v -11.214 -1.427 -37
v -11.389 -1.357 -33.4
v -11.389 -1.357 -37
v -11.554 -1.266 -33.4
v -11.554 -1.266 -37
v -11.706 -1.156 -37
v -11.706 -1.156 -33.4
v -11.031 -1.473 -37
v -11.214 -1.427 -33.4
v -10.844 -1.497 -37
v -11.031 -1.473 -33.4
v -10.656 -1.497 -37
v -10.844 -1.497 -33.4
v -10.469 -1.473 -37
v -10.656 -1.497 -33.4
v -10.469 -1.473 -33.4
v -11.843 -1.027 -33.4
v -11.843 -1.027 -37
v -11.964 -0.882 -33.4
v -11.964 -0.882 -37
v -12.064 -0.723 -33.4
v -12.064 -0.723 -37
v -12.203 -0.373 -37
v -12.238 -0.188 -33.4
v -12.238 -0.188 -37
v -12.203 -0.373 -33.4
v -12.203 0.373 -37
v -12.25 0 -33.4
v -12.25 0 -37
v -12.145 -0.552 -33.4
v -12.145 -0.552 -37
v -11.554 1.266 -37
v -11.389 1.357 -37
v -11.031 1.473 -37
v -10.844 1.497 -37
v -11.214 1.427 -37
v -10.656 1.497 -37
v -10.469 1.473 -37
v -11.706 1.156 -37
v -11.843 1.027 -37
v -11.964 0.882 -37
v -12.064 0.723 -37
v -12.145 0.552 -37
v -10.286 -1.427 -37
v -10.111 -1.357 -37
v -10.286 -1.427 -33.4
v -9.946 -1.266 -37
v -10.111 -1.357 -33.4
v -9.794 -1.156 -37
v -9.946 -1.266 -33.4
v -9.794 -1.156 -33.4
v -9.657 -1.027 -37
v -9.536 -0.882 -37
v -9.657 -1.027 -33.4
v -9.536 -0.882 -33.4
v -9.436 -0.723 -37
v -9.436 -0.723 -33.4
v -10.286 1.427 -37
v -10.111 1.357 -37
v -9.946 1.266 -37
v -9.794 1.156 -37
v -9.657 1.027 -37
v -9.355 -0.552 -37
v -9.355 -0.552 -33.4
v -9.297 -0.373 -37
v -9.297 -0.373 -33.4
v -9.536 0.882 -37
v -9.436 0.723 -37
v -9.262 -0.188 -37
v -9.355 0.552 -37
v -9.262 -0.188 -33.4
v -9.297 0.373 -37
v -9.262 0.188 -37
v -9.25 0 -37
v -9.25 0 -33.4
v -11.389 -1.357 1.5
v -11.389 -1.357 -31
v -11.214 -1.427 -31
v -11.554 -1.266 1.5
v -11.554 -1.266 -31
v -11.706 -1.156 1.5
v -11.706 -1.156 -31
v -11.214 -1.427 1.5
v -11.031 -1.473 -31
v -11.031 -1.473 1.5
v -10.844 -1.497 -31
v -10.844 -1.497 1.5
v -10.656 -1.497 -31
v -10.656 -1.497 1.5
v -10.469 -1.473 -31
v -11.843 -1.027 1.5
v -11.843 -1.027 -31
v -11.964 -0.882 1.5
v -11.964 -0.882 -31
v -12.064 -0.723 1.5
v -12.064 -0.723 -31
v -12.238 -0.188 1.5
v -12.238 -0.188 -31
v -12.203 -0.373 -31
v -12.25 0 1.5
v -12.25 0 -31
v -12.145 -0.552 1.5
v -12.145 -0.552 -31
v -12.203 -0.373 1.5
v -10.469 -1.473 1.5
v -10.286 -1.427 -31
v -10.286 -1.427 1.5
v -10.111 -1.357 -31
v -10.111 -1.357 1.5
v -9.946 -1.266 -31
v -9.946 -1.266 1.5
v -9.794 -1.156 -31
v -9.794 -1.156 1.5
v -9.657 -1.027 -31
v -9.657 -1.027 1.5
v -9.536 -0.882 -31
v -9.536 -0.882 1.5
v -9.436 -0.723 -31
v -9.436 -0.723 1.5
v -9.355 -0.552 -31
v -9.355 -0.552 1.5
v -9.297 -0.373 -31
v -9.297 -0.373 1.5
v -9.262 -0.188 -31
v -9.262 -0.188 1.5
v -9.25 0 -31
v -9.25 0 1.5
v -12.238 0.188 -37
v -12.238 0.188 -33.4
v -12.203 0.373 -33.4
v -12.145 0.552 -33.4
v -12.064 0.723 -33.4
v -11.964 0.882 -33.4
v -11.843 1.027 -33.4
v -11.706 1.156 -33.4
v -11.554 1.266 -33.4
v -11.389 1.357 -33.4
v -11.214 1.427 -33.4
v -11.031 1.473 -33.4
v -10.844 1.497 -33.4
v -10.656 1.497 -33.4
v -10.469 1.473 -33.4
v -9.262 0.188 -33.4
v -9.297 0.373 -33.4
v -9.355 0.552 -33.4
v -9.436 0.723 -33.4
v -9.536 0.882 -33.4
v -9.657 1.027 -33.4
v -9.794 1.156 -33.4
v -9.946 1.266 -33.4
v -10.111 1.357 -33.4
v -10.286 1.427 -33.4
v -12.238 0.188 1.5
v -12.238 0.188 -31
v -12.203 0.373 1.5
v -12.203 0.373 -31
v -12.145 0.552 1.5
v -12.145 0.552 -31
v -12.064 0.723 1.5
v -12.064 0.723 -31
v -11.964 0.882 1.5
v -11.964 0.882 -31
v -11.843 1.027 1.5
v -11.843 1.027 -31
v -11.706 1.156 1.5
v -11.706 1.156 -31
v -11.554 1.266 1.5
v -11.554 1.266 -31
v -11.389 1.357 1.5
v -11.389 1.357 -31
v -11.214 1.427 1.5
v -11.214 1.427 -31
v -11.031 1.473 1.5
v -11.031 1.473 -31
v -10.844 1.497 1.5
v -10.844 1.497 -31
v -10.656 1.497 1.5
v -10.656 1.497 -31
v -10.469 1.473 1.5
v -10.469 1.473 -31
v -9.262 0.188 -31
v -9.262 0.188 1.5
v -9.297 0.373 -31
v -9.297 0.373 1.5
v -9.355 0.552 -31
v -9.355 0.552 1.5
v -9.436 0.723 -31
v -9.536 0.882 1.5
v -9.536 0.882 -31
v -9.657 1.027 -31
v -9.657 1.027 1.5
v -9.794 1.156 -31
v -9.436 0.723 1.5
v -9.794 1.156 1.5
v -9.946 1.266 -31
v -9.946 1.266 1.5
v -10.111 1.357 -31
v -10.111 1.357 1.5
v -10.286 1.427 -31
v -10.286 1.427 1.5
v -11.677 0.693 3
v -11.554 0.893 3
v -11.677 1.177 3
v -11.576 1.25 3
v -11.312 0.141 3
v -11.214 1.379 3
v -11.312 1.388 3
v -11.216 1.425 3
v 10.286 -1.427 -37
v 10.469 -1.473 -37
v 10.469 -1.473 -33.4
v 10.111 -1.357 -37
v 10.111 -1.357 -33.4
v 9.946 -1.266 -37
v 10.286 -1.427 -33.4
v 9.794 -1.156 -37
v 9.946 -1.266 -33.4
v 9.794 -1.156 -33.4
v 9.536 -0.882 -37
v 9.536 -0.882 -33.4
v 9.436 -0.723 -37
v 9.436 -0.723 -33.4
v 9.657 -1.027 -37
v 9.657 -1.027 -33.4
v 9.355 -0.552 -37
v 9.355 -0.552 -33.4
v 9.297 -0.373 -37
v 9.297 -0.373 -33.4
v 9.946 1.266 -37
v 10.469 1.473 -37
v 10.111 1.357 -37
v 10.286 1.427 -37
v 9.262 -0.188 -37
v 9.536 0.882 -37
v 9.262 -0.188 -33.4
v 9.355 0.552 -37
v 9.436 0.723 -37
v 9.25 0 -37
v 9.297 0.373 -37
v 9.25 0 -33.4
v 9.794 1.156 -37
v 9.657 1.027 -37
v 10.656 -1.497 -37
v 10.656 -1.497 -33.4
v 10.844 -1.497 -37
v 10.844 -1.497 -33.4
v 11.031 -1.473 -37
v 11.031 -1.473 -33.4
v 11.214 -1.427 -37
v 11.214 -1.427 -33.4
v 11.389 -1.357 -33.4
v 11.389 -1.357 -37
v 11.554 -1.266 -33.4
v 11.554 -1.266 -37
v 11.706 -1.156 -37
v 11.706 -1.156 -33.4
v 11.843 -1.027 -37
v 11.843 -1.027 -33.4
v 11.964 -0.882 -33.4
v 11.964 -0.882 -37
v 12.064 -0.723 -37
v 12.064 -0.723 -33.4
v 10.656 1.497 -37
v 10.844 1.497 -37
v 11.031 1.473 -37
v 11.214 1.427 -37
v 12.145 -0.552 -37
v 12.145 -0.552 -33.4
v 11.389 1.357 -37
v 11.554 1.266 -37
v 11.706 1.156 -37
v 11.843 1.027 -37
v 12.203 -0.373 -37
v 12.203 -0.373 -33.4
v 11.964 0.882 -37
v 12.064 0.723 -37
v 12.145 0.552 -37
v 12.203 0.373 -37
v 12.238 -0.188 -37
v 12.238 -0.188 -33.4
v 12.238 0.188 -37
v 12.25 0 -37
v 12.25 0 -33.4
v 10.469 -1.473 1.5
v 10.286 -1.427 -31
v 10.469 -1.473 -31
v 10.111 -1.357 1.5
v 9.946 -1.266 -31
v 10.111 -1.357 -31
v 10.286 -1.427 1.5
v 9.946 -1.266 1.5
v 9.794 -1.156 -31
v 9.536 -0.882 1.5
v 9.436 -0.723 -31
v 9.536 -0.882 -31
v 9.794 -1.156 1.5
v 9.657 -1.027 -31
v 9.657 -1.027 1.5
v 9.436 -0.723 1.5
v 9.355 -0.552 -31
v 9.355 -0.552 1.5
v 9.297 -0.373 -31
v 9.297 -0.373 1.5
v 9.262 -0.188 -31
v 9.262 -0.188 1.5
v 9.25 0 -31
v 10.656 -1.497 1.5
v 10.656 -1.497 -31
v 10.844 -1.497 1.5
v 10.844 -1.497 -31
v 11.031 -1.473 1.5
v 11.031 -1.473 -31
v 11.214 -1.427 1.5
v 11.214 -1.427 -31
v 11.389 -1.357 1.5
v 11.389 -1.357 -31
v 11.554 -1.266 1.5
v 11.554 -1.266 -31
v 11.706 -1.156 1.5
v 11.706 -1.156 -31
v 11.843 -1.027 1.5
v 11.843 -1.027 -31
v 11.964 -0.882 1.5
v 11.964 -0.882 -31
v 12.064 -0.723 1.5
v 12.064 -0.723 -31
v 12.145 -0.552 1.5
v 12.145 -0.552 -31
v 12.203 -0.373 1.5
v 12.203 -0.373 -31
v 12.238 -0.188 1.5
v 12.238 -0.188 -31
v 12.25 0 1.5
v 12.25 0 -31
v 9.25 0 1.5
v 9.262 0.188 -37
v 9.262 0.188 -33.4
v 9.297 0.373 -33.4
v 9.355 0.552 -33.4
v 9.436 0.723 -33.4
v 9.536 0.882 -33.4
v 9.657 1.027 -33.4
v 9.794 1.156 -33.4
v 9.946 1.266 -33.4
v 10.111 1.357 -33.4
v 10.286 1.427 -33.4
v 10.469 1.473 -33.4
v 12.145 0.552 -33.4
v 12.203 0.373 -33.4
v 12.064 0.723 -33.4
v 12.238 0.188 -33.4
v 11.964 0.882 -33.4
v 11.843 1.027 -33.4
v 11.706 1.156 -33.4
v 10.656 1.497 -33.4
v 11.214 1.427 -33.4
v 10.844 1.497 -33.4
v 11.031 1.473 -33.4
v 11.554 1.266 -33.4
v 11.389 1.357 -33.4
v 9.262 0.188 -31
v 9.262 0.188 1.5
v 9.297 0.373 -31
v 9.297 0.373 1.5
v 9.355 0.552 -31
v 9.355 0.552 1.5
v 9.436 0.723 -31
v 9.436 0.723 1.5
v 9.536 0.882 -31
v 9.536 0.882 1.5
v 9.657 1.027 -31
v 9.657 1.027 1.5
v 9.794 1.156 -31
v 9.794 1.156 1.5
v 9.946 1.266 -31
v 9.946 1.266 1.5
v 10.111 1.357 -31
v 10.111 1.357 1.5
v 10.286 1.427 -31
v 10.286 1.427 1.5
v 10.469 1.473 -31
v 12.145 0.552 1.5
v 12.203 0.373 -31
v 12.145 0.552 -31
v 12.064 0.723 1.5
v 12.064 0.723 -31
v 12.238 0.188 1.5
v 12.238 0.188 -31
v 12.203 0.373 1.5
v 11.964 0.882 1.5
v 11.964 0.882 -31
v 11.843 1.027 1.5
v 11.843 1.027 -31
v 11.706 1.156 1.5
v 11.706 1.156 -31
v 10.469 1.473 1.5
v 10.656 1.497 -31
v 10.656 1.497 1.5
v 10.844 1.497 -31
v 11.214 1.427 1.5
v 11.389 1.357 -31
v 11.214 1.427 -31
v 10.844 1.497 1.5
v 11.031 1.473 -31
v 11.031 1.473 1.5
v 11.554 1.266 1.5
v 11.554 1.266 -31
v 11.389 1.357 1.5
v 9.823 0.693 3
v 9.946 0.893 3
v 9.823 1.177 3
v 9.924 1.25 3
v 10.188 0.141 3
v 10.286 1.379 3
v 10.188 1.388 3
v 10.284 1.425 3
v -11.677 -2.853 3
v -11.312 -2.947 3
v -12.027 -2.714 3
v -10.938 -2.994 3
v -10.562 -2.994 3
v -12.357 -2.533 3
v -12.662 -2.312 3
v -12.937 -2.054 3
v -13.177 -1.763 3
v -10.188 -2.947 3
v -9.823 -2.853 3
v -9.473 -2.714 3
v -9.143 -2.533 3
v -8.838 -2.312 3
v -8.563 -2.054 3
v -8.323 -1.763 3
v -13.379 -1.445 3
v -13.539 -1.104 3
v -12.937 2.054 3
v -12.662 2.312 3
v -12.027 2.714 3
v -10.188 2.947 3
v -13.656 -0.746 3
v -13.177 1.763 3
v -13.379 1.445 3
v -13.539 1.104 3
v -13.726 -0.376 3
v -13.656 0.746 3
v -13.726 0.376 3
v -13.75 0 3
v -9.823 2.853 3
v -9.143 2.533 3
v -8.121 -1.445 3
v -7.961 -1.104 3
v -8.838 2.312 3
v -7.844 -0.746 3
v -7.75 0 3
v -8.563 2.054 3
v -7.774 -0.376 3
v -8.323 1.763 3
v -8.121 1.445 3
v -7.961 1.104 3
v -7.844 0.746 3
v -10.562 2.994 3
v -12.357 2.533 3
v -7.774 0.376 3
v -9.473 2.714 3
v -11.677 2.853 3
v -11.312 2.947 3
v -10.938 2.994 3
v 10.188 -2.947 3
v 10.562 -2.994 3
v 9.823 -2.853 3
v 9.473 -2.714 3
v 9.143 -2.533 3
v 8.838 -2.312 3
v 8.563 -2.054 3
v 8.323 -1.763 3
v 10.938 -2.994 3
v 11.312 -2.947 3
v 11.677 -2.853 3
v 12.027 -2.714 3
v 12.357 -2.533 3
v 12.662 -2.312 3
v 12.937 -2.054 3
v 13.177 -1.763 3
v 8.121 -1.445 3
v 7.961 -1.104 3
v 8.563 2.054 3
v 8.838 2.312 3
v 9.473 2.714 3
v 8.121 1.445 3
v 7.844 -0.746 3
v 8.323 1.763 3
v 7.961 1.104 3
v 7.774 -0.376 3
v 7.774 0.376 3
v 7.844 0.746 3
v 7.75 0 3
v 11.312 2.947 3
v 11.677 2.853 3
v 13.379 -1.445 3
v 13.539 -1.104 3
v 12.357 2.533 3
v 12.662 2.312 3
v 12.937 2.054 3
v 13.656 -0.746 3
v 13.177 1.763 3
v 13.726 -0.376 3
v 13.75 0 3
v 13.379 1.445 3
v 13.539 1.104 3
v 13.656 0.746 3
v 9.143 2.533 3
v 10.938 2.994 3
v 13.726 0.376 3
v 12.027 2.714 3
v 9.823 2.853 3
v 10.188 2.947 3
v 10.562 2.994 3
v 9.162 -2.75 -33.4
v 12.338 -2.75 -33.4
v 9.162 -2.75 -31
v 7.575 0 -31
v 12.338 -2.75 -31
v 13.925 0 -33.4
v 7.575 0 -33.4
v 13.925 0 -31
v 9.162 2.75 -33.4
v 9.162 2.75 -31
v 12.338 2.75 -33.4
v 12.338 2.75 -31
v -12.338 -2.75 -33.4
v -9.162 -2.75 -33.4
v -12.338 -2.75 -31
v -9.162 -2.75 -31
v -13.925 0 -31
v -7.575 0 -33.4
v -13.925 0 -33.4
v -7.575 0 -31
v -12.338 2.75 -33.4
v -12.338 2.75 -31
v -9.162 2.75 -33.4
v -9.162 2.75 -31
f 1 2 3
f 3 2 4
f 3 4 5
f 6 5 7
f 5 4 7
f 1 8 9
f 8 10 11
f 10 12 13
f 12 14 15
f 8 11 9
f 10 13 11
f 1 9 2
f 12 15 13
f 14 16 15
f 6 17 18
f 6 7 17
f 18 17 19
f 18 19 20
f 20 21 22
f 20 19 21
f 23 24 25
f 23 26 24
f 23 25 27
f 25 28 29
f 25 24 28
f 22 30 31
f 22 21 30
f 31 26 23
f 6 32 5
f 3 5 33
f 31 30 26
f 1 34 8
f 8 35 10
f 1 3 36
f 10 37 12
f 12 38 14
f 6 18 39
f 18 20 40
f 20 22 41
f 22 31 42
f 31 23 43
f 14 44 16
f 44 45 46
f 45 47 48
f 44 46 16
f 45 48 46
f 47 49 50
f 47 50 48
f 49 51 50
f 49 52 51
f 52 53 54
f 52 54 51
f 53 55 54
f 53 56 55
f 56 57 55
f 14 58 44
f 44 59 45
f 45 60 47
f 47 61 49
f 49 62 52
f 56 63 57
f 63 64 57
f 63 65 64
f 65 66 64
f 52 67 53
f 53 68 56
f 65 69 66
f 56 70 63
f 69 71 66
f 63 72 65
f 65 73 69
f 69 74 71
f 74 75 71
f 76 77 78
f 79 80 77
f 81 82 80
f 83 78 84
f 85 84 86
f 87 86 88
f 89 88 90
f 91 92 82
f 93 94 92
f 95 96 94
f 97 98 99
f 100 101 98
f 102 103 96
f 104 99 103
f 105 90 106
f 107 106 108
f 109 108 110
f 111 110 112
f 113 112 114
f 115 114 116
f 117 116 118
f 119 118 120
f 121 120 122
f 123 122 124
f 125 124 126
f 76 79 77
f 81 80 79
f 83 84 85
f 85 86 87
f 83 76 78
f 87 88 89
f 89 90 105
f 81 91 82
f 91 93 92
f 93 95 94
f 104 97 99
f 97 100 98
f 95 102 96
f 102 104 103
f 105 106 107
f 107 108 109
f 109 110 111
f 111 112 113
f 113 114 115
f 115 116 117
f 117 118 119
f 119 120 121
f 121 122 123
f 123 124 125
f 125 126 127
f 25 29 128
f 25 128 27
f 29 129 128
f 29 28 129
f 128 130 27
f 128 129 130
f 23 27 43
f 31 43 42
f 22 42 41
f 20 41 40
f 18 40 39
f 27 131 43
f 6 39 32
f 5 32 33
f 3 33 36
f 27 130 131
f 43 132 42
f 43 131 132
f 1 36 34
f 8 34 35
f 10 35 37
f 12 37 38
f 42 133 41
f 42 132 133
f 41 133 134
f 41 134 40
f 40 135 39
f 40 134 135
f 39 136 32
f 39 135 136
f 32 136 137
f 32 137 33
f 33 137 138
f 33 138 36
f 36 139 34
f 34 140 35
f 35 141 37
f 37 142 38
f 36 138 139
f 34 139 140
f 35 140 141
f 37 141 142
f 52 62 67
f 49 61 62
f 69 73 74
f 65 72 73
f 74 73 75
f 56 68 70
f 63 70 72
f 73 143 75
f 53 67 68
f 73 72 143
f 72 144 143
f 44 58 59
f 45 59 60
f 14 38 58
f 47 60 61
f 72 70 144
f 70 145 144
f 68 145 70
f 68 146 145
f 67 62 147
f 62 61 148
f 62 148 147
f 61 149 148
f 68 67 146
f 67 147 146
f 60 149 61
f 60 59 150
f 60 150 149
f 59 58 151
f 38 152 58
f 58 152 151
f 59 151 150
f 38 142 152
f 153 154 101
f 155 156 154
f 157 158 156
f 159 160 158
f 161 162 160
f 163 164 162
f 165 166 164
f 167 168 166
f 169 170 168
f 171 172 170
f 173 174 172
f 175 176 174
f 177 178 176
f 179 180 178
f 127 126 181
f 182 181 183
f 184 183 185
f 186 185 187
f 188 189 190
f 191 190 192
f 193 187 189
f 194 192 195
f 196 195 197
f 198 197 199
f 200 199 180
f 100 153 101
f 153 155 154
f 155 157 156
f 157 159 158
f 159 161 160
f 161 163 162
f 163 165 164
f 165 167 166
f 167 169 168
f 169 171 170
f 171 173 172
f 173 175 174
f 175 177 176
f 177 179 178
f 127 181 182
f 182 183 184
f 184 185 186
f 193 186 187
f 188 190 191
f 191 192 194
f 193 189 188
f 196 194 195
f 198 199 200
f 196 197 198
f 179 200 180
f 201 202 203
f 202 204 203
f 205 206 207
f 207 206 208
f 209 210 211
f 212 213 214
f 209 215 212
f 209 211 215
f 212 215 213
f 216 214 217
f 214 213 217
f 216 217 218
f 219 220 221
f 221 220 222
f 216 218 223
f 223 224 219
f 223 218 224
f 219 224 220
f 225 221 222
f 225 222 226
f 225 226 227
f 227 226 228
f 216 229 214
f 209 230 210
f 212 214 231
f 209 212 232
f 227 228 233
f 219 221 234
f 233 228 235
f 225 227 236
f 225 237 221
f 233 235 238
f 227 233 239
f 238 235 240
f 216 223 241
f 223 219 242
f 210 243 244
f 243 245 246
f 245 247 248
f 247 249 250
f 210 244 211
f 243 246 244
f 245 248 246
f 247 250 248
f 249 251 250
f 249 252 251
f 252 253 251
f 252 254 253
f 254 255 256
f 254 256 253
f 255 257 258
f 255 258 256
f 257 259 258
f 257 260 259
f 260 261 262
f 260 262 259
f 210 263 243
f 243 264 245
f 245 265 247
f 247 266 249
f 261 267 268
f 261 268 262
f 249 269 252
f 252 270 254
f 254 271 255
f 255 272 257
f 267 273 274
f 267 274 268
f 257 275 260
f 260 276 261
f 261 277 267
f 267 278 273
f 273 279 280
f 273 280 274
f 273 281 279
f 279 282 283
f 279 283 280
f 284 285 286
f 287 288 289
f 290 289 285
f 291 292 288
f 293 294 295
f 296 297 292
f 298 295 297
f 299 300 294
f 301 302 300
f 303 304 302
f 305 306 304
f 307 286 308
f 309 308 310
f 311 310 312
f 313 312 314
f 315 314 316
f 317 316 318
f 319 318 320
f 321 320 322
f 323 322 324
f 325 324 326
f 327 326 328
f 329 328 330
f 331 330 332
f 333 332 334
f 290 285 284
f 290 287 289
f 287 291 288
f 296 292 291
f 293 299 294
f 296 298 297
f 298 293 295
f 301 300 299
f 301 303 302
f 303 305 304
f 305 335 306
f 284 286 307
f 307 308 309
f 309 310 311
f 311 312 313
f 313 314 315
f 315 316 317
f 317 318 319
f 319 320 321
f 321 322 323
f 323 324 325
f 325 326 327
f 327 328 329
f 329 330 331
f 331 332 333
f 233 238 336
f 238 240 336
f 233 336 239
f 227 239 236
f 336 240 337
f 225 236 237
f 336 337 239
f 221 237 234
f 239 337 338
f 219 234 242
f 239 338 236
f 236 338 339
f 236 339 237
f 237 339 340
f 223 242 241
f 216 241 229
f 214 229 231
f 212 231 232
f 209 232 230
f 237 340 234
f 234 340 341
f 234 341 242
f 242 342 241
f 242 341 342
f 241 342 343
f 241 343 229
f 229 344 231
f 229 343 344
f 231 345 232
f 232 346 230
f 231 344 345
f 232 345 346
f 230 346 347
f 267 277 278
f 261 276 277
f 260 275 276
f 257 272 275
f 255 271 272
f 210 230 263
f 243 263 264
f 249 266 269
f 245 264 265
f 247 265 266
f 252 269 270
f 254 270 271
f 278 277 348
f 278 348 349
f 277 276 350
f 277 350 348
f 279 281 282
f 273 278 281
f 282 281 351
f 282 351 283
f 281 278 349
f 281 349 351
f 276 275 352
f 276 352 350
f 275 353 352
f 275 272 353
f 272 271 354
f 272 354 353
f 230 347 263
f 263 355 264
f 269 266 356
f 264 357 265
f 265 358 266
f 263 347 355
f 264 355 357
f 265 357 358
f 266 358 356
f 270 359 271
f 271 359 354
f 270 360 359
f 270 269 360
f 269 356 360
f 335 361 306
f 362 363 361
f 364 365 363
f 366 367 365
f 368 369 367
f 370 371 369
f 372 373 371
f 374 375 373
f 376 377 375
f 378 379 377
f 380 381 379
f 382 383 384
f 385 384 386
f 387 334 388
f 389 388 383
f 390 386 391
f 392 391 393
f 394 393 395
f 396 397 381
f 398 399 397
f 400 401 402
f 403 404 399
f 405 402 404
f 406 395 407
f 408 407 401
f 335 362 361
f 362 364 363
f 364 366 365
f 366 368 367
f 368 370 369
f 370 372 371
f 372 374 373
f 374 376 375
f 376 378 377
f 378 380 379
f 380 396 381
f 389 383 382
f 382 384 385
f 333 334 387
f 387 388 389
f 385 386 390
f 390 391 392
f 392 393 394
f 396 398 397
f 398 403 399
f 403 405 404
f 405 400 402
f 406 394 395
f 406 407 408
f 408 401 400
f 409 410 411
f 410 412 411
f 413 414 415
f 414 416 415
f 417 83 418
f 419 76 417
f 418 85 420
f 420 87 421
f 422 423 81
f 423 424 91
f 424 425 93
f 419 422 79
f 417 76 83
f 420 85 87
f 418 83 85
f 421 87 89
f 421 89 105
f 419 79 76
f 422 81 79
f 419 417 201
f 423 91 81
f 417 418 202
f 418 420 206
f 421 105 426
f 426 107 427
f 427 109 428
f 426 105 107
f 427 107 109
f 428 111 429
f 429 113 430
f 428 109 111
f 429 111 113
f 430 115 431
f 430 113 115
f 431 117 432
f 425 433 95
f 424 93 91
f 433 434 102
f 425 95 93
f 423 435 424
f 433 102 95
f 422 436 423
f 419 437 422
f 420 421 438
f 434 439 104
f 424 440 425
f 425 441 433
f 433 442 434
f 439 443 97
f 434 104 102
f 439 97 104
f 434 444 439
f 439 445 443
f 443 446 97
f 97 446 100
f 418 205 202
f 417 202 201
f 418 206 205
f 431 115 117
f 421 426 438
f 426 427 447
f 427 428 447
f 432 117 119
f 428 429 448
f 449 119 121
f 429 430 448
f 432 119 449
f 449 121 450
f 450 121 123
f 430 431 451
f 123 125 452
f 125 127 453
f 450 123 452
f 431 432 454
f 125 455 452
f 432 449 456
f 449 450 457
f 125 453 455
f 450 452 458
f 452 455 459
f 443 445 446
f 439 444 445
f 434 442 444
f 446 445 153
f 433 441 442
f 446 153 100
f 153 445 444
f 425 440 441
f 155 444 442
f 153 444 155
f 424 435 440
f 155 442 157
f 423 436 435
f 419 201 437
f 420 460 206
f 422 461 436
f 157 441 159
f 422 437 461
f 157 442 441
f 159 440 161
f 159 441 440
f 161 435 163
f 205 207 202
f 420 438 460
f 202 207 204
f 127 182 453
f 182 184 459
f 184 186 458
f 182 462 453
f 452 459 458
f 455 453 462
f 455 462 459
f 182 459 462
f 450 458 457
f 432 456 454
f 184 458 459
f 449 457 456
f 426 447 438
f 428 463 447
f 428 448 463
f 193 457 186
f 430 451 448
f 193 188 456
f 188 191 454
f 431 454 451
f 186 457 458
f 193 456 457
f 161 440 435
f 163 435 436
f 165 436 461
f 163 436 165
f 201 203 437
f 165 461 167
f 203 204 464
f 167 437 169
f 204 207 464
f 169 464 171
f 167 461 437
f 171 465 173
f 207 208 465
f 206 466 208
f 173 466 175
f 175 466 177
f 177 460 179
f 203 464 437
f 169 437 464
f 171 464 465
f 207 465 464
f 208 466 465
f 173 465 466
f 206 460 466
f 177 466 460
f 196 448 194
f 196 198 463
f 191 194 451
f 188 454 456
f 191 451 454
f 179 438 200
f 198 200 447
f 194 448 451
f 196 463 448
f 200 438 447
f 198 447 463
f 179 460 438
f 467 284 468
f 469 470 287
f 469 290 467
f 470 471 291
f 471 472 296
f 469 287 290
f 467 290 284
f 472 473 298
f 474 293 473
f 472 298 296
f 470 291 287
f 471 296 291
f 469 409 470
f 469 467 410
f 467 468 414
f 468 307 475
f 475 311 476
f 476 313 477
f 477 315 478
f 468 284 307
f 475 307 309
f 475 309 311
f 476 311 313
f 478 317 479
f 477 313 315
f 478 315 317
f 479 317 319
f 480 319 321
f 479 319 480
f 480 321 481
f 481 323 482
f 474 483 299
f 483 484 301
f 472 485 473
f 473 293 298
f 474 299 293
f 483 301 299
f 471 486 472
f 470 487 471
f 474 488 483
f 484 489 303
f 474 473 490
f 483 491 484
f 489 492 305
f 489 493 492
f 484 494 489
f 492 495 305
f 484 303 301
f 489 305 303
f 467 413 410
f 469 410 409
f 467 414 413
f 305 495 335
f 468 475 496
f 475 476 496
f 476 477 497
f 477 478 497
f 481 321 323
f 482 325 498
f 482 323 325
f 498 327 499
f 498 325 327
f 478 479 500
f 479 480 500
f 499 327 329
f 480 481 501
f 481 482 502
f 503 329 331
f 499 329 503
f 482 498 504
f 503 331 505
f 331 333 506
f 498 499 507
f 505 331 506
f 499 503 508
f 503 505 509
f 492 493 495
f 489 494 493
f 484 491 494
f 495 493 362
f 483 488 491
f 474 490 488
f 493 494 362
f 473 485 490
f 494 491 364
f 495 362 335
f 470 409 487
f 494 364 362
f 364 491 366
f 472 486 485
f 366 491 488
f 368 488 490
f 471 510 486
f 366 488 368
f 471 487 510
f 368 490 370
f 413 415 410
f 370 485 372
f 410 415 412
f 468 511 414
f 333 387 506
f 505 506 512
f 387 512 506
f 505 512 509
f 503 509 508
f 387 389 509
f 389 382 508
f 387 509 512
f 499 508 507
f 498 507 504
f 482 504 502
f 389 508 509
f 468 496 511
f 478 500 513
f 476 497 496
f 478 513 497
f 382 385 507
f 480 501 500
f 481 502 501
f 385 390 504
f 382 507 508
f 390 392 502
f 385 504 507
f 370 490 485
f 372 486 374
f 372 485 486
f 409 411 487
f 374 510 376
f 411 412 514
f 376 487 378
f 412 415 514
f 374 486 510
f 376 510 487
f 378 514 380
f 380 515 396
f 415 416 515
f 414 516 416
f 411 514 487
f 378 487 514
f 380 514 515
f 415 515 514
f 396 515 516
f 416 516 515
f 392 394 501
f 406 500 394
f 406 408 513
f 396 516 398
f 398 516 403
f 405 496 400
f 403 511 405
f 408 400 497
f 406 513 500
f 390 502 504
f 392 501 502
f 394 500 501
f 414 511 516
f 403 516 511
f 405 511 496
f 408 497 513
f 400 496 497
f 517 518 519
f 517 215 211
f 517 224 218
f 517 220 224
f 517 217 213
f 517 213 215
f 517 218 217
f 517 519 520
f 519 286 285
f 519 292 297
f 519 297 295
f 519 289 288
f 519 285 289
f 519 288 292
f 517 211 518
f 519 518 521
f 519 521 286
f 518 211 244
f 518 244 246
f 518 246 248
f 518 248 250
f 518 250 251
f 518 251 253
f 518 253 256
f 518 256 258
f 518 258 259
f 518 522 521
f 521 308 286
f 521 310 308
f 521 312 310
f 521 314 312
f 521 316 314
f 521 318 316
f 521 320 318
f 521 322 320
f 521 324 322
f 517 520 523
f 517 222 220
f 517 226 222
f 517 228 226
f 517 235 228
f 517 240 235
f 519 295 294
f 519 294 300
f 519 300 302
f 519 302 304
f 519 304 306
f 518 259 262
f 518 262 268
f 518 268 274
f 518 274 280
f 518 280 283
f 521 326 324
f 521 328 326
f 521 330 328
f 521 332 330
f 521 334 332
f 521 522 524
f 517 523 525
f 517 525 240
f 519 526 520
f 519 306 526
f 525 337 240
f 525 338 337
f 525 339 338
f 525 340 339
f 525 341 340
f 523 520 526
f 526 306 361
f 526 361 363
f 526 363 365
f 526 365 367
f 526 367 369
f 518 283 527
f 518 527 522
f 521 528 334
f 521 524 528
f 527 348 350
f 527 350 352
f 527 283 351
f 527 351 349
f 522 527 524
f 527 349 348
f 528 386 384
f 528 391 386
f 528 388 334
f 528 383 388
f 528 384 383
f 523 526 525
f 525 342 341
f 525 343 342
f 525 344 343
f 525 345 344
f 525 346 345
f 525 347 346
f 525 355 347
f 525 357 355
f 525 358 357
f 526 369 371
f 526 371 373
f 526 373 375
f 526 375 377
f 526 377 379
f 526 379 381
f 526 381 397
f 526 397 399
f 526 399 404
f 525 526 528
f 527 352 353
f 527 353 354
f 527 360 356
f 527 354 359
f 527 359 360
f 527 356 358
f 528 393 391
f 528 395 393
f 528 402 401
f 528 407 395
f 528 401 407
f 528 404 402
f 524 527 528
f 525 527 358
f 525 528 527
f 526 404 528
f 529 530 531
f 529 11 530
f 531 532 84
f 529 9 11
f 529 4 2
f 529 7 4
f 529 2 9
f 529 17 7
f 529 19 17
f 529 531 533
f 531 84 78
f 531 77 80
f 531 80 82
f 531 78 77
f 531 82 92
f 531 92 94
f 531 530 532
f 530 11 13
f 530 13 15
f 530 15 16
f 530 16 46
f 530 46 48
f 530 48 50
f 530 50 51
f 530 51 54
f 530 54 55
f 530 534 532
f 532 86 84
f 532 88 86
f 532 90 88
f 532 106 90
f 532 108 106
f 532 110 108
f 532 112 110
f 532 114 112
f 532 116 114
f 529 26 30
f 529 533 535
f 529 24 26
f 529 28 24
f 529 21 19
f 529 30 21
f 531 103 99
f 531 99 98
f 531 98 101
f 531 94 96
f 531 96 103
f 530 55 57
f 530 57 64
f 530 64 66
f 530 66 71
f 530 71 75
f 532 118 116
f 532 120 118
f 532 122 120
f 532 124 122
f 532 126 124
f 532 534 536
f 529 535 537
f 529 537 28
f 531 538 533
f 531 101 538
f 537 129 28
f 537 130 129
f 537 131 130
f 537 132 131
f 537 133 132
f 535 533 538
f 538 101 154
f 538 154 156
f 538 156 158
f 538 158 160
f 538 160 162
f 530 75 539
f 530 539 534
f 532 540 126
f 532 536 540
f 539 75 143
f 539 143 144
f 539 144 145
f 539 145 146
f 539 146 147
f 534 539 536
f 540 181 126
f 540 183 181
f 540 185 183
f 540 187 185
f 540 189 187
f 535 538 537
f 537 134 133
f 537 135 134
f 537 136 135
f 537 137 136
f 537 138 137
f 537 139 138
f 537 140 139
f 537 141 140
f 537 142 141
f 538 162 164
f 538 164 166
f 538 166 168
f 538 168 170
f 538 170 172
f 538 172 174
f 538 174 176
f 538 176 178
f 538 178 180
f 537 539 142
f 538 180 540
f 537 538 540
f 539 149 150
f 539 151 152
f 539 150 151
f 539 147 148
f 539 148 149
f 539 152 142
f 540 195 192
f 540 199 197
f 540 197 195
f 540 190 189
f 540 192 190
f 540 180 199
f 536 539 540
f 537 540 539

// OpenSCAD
$fn = 50;

difference() {
	union() {
		translate(v = [-10.75, 0, 3]) {
			rotate(a = [0, 0, 0]) {
				difference() {
					union() {
						translate(v = [0, 0, -40.0]) {
							cylinder(h = 40, r = 1.5);
						}
						translate(v = [0, 0, -1.5]) {
							cylinder(h = 1.5, r1 = 1.5, r2 = 3);
						}
					}
					union();
				}
			}
		}
		translate(v = [-10.75, 0, -33.400000000000006]) {
			rotate(a = [0, 0, 0]) {
				difference() {
					union() {
						linear_extrude(height = 2.4) {
							polygon(points = [[3.1754264805429417, 0.0], [1.5877132402714713, 2.75], [-1.5877132402714702, 2.7500000000000004], [-3.1754264805429417, 3.888775875324659e-16], [-1.5877132402714722, -2.7499999999999996], [1.5877132402714687, -2.7500000000000013]]);
						}
					}
					union();
				}
			}
		}
		translate(v = [10.75, 0, 3]) {
			rotate(a = [0, 0, 0]) {
				difference() {
					union() {
						translate(v = [0, 0, -40.0]) {
							cylinder(h = 40, r = 1.5);
						}
						translate(v = [0, 0, -1.5]) {
							cylinder(h = 1.5, r1 = 1.5, r2 = 3);
						}
					}
					union();
				}
			}
		}
		translate(v = [10.75, 0, -33.400000000000006]) {
			rotate(a = [0, 0, 0]) {
				difference() {
					union() {
						linear_extrude(height = 2.4) {
							polygon(points = [[3.1754264805429417, 0.0], [1.5877132402714713, 2.75], [-1.5877132402714702, 2.7500000000000004], [-3.1754264805429417, 3.888775875324659e-16], [-1.5877132402714722, -2.7499999999999996], [1.5877132402714687, -2.7500000000000013]]);
						}
					}
					union();
				}
			}
		}
	}
	union();
}
